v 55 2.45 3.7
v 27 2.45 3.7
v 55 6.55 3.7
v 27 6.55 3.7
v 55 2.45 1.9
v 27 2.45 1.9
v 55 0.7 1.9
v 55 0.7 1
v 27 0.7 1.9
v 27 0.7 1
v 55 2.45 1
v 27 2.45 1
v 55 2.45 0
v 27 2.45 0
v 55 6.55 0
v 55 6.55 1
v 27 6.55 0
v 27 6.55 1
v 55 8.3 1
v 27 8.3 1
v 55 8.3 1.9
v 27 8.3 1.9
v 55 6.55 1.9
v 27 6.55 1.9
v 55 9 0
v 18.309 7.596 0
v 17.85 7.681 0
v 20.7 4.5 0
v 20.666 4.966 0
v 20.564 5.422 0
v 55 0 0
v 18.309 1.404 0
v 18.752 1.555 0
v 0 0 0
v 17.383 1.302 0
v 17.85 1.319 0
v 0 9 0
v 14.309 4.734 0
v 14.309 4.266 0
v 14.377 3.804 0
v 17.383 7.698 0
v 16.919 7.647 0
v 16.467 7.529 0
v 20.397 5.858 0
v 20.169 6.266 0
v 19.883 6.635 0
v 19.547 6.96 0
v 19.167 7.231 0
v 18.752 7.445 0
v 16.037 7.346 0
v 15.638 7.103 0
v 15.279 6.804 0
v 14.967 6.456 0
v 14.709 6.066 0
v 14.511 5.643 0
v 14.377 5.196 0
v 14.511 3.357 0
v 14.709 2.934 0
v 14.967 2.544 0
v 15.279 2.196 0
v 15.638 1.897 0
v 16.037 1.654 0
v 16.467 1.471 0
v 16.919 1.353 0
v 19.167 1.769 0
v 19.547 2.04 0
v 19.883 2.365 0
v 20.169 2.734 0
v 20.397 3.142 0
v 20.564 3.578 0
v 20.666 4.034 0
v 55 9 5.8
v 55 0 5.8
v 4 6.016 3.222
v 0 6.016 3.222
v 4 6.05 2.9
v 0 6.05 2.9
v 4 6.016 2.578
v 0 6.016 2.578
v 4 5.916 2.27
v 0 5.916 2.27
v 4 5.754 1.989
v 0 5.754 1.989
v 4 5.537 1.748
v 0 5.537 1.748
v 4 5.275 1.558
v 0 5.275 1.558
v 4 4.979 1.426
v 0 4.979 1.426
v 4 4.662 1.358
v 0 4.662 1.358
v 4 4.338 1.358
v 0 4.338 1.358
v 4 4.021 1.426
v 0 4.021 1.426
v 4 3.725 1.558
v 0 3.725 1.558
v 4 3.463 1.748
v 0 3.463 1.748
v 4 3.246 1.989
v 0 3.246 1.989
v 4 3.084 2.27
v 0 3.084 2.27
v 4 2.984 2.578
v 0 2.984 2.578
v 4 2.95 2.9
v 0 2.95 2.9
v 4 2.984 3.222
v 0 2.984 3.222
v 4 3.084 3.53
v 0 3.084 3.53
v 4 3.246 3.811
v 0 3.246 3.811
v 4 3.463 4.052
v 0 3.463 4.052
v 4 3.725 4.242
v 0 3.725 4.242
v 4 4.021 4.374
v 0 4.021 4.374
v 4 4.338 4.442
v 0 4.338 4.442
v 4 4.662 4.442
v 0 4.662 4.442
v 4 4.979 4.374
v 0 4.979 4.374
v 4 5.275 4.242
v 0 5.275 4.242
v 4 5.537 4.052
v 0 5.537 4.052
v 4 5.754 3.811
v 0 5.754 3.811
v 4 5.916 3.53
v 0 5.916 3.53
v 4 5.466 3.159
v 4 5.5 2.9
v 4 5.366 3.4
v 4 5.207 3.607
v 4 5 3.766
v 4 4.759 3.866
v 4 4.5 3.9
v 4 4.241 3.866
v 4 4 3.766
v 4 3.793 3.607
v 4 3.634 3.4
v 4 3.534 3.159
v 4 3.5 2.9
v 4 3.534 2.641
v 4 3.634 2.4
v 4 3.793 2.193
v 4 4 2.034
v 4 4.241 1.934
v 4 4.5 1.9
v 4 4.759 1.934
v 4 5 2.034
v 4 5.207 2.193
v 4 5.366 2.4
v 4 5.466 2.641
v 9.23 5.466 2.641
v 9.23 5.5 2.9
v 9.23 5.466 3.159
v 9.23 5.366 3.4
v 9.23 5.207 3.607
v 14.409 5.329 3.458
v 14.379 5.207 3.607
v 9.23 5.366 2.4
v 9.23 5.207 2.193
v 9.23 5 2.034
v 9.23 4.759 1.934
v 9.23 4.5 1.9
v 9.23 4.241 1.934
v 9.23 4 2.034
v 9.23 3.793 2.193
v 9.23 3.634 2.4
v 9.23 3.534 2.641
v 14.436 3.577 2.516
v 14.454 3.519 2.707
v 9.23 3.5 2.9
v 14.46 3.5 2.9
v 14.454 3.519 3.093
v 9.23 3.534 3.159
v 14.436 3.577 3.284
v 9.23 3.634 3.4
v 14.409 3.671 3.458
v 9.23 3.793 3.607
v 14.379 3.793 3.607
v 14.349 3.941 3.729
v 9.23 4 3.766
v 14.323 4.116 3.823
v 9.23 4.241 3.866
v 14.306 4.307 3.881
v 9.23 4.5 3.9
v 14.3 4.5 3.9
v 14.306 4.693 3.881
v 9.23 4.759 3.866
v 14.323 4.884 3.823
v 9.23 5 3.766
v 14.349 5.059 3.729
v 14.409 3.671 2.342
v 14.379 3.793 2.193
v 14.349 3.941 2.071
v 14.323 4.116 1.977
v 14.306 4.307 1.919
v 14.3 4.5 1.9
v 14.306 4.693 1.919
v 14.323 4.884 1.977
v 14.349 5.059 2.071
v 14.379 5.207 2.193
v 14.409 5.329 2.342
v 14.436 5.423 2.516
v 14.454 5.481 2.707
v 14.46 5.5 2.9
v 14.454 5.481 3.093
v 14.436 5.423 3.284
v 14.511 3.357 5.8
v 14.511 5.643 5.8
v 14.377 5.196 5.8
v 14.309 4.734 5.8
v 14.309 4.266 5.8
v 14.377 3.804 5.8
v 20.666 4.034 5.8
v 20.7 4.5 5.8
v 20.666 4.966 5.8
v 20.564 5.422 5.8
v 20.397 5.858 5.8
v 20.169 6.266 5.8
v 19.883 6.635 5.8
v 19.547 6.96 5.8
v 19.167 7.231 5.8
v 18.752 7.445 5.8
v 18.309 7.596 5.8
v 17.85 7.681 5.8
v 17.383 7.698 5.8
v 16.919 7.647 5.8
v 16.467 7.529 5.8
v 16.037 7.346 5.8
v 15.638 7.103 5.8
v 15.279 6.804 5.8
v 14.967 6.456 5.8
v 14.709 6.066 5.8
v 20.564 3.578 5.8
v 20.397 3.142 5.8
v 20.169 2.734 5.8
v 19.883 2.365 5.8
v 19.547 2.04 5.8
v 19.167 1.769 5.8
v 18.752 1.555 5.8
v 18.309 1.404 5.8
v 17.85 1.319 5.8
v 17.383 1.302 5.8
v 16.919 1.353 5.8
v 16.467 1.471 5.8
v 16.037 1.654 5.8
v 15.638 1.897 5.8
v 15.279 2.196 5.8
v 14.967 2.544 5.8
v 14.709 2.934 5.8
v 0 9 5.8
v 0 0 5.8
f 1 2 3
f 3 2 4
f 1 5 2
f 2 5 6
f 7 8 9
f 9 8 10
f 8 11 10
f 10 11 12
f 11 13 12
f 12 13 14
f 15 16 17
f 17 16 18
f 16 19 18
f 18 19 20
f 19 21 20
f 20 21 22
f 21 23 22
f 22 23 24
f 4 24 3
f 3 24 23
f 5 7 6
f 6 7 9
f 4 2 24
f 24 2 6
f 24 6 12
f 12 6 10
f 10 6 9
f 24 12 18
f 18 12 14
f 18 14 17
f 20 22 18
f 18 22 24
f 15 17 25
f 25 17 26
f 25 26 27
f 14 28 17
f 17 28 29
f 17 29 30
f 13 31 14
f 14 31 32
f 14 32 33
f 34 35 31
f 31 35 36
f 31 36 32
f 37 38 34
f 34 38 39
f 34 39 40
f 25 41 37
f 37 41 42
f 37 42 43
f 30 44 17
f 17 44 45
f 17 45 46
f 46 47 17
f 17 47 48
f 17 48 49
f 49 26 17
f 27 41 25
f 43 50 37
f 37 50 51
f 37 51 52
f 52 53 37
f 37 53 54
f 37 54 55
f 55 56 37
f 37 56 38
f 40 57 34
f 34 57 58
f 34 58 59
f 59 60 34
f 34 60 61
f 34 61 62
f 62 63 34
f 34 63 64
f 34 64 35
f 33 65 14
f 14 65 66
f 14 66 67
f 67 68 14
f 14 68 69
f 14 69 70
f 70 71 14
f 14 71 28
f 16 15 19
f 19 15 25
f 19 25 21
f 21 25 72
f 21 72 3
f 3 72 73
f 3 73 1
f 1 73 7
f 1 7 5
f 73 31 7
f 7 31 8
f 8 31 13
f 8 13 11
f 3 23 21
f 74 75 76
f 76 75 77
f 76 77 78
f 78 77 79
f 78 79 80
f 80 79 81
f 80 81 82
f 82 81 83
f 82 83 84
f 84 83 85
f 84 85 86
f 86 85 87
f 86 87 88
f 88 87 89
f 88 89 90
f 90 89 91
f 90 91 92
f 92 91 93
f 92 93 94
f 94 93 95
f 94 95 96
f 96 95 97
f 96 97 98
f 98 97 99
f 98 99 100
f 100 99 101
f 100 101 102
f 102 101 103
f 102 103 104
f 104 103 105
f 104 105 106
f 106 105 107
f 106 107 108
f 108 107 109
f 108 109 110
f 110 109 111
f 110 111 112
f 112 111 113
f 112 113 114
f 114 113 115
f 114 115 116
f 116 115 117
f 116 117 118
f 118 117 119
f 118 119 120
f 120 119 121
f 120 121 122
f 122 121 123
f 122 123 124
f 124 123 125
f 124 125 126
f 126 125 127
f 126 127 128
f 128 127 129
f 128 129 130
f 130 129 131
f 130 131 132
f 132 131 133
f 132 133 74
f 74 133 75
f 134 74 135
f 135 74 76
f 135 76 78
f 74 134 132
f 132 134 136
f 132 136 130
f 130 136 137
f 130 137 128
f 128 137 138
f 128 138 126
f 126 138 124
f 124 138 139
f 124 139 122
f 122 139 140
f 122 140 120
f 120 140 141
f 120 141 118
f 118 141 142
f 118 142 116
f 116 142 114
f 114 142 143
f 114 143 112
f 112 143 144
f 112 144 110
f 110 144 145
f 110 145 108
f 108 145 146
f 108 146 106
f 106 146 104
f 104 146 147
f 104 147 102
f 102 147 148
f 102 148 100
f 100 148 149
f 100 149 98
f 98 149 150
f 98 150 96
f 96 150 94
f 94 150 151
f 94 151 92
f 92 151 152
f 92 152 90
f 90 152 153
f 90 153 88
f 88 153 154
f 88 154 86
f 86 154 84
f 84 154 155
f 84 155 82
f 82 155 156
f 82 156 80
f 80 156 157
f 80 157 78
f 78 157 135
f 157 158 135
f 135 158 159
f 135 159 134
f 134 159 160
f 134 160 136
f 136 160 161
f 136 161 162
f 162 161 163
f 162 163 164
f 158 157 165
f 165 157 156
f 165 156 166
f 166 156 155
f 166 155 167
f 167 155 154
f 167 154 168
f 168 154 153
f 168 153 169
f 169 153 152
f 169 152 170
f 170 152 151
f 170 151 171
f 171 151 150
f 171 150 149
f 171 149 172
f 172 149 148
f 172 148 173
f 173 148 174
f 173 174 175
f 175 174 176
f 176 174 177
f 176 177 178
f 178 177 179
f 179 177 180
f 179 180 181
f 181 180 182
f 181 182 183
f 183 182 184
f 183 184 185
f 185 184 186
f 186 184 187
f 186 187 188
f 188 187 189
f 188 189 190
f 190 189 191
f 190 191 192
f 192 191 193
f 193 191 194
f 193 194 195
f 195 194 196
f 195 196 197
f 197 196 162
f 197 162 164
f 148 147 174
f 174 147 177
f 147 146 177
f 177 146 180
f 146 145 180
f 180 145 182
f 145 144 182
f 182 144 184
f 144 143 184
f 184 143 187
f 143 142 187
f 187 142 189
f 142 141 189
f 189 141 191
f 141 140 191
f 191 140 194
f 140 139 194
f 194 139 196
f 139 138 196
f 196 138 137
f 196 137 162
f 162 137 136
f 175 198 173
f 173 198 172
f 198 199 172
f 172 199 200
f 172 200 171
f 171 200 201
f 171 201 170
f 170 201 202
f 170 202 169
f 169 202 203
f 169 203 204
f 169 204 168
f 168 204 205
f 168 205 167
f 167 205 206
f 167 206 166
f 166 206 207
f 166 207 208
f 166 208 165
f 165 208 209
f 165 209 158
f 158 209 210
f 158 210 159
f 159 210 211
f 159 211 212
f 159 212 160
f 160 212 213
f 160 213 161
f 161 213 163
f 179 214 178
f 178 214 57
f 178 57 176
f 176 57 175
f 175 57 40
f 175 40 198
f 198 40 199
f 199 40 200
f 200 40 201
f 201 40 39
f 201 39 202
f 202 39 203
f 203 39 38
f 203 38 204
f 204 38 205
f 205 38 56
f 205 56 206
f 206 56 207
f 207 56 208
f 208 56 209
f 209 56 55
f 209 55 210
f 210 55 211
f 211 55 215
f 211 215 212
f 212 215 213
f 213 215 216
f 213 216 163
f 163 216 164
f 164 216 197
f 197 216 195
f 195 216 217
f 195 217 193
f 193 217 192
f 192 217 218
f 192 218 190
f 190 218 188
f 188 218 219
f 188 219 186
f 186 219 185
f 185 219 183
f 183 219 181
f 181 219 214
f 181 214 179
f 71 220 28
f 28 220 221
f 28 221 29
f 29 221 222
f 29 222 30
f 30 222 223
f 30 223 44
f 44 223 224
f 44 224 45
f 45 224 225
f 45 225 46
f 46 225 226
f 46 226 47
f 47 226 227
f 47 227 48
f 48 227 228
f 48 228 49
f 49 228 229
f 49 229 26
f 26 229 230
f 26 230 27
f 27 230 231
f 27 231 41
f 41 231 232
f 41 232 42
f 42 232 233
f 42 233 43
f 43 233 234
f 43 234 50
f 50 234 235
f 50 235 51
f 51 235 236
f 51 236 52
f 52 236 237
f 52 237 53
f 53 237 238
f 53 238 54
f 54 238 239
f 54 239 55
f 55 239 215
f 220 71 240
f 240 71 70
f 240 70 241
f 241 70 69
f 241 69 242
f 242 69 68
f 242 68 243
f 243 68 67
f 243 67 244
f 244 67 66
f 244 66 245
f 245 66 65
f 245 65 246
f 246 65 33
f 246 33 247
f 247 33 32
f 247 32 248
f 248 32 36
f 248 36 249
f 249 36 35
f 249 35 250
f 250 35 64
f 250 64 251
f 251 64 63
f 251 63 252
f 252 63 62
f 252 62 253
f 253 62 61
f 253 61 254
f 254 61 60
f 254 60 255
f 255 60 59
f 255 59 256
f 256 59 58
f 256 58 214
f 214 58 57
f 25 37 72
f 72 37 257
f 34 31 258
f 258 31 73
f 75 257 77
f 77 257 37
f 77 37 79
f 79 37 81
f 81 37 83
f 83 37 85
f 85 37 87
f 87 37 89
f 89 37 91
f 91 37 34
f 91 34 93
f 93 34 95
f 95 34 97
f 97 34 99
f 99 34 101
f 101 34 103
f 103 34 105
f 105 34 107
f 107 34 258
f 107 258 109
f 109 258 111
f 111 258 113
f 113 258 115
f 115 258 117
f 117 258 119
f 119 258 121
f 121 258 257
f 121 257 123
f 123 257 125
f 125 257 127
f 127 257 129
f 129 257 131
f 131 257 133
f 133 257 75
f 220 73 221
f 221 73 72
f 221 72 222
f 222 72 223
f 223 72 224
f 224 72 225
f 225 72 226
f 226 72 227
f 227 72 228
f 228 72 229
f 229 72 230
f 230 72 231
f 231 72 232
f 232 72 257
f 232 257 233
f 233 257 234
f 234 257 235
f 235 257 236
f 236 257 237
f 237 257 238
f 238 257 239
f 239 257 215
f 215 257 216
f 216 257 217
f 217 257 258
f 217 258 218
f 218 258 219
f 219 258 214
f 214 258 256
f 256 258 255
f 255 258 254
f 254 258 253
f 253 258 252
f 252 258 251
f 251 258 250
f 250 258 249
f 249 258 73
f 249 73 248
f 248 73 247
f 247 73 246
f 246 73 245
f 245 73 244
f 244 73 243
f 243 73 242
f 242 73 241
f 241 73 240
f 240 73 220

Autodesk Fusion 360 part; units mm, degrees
sketch "スケッチ3" plane through (0, 0, 0) normal (0, 0, 1) x (1, 0, 0)
  line L0 (0, 0) -> (45, 0)
  line L1 (45, 0) -> (45, 9)
  line L2 (45, 9) -> (0, 9)
  line L3 (0, 9) -> (0, 0)
  dimension "d4" = 45
  dimension "d5" = 9
extrude "押し出し2" add sketch "スケッチ3" along normal blind 5.8
sketch "スケッチ4" plane through (0, 0, 0) normal (1, 0, 0) x (0, 1, 0)
sketch "スケッチ5" plane through (45, 0, 0) normal (1, 0, 0) x (0, 1, 0)
  line L0 (0, 0) -> (9, 0)
  line L1 (9, 0) -> (9, 5.8)
  line L2 (9, 5.8) -> (0, 5.8)
  line L3 (0, 5.8) -> (0, 0)
  line L4 (0, 0) -> (0.85, 0)
  line L5 (0.85, 0) -> (0.85, 5.8)
  line L6 (0.85, 5.8) -> (0, 5.8)
  line L7 (0, 5.8) -> (0, 0)
  line L8 (9, 0) -> (8.15, 0)
  line L9 (8.15, 0) -> (8.15, 5.7622)
  line L10 (8.15, 5.7622) -> (9, 5.7622)
  line L11 (9, 5.7622) -> (9, 0)
  line L12 (0.85, 0) -> (8.15, 0)
  line L13 (8.15, 0) -> (8.15, 1)
  line L14 (8.15, 1) -> (0.85, 1)
  line L15 (0.85, 1) -> (0.85, 0)
  line L16 (0.85, 5.8) -> (8.1927, 5.8)
  line L17 (8.1927, 5.8) -> (8.1927, 1.8)
  line L18 (8.1927, 1.8) -> (0.85, 1.8)
  line L19 (0.85, 1.8) -> (0.85, 5.8)
  line L20 (4.5, 1) -> (6.55, 1)
  line L21 (6.55, 1) -> (6.55, 0)
  line L22 (6.55, 0) -> (4.5, 0)
  line L23 (4.5, 0) -> (4.5, 1)
  line L24 (4.5, 0) -> (2.45, 0)
  line L25 (2.45, 0) -> (2.45, 1)
  line L26 (2.45, 1) -> (4.5, 1)
  line L27 (4.5, 1) -> (4.5, 0)
  dimension "d8" = 0.85
  dimension "d9" = 0.85
  dimension "d10" = 1
  dimension "d11" = 4
  dimension "d12" = 2.05
  dimension "d13" = 2.05
sketch "スケッチ6" plane through (0, 0, 5.8) normal (0, 0, 1) x (-1, 0, 0)
  line L0 (0, -9) -> (0, 0)
  line L1 (0, 0) -> (-45, 0)
  line L2 (-45, 0) -> (-45, -9)
  line L3 (-45, -9) -> (0, -9)
  line L4 (-45, -9) -> (-17.5, -9)
  line L5 (-17.5, -9) -> (-17.5, -4.5)
  line L6 (-17.5, -4.5) -> (-45, -4.5)
  line L7 (-45, -4.5) -> (-45, -9)
  circle A0 centre (-17.5, -4.5) radius 3.2
  dimension "d16" = 27.5
  dimension "d17" = 4.5
  dimension "d18" = 6.4
extrude "押し出し4" cut sketch "スケッチ6" against normal blind 9 contours L5 L6 A0 | L5 L6 A0
sketch "スケッチ7" plane through (0, 0, 0) normal (-1, 0, 0) x (0, -1, 0)
  line L0 (-9, 0) -> (0, 0)
  line L1 (0, 0) -> (0, 5.8)
  line L2 (0, 5.8) -> (-9, 5.8)
  line L3 (-9, 5.8) -> (-9, 0)
  line L4 (-9, 0) -> (0, 5.8)
  line L5 (-9, 5.8) -> (0, 0)
  circle A0 centre (-4.5, 2.9) radius 1
  dimension "d21" = 2
extrude "押し出し5" cut sketch "スケッチ7" against normal blind 15 contours L4 L5 A0 | L4 L5 A0 | L4 L5 A0 | L4 L5 A0
sketch "スケッチ8" plane through (0, 0, 0) normal (-1, 0, 0) x (0, -1, 0)
  circle A0 centre (-4.5, 2.9) radius 1
  line L0 (-9, 0) -> (0, 0)
  line L1 (0, 0) -> (0, 5.8)
  line L2 (0, 5.8) -> (-9, 5.8)
  line L3 (-9, 5.8) -> (-9, 0)
  circle A1 centre (-4.5, 2.9) radius 1.55
  dimension "d24" = 3.1
extrude "押し出し6" cut sketch "スケッチ8" against normal blind 4 contours A1
sketch "スケッチ9" plane through (45, 0, 0) normal (1, 0, 0) x (0, 1, 0)
  line L0 (9, 0) -> (9, 5.8)
  line L1 (9, 5.8) -> (0, 5.8)
  line L2 (0, 5.8) -> (0, 0)
  line L3 (0, 0) -> (9, 0)
sketch "スケッチ10" plane through (45, 0, 0) normal (1, 0, 0) x (0, 1, 0)
  line L0 (0, 0) -> (9, 0)
  line L1 (9, 0) -> (9, 5.8)
  line L2 (9, 5.8) -> (0, 5.8)
  line L3 (0, 5.8) -> (0, 0)
extrude "押し出し7" add sketch "スケッチ9" along normal blind 10
sketch "スケッチ11" plane through (55, 0, 0) normal (1, 0, 0) x (0, 1, 0)
  line L0 (0, 0) -> (9, 0)
  line L1 (9, 0) -> (9, 5.8)
  line L2 (9, 5.8) -> (0, 5.8)
  line L3 (0, 5.8) -> (0, 0)
  line L4 (0, 0) -> (4.5, 0)
  line L5 (4.5, 0) -> (6.55, 0)
  line L6 (6.55, 0) -> (6.55, 1)
  line L7 (6.55, 1) -> (4.5, 1)
  line L8 (4.5, 1) -> (4.5, 0)
  line L9 (4.5, 0) -> (2.45, 0)
  line L10 (2.45, 0) -> (2.45, 1)
  line L11 (2.45, 1) -> (4.5, 1)
  line L12 (4.5, 1) -> (4.5, 0)
  line L13 (9, 0) -> (8.3, 0)
  line L14 (8.3, 0) -> (8.3, 5.8)
  line L15 (8.3, 5.8) -> (9, 5.8)
  line L16 (9, 5.8) -> (9, 0)
  line L17 (0, 0) -> (0.7, 0)
  line L18 (0.7, 0) -> (0.7, 5.8)
  line L19 (0.7, 5.8) -> (0, 5.8)
  line L20 (0, 5.8) -> (0, 0)
  line L21 (0.7, 1) -> (8.3, 1)
  line L22 (8.3, 1) -> (8.3, 1.9)
  line L23 (8.3, 1.9) -> (0.7, 1.9)
  line L24 (0.7, 1.9) -> (0.7, 1)
  line L25 (4.5, 1.9) -> (6.55, 1.9)
  line L26 (6.55, 1.9) -> (6.55, 4.9)
  line L27 (6.55, 4.9) -> (4.5, 4.9)
  line L28 (4.5, 4.9) -> (4.5, 1.9)
  line L29 (4.5, 1.9) -> (2.45, 1.9)
  line L30 (2.45, 1.9) -> (2.45, 4.9)
  line L31 (2.45, 4.9) -> (4.5, 4.9)
  line L32 (4.5, 4.9) -> (4.5, 1.9)
  dimension "d29" = 4.5
  dimension "d30" = 2.05
  dimension "d31" = 1
  dimension "d32" = 0.9
  dimension "d33" = 2.05
  dimension "d34" = 3
  dimension "d35" = 2.05
extrude "押し出し8" cut sketch "スケッチ11" against normal blind 28 contours L0 L4 L8 L9 L10 L11 L12 L21 | L7 L11 L14 L18 L21 L22 L23 L24 L25 L29 | L0 L5 L6 L7 L8 L12 L21 | L23 L28 L29 L30 L31 L32 | L23 L25 L26 L27 L28 L32
sketch "スケッチ12" plane through (0, 0, 4.9) normal (0, 0, -1) x (1, 0, 0)
  line L0 (55, -6.55) -> (55, -2.45)
  line L1 (55, -2.45) -> (27, -2.45)
  line L2 (27, -2.45) -> (27, -6.55)
  line L3 (27, -6.55) -> (55, -6.55)
  line L4 (55, -6.55) -> (27, -6.55)
  line L5 (27, -6.55) -> (27, -2.45)
  line L6 (27, -2.45) -> (55, -2.45)
  line L7 (55, -2.45) -> (55, -6.55)
extrude "押し出し9" add sketch "スケッチ12" along normal blind 1.2
